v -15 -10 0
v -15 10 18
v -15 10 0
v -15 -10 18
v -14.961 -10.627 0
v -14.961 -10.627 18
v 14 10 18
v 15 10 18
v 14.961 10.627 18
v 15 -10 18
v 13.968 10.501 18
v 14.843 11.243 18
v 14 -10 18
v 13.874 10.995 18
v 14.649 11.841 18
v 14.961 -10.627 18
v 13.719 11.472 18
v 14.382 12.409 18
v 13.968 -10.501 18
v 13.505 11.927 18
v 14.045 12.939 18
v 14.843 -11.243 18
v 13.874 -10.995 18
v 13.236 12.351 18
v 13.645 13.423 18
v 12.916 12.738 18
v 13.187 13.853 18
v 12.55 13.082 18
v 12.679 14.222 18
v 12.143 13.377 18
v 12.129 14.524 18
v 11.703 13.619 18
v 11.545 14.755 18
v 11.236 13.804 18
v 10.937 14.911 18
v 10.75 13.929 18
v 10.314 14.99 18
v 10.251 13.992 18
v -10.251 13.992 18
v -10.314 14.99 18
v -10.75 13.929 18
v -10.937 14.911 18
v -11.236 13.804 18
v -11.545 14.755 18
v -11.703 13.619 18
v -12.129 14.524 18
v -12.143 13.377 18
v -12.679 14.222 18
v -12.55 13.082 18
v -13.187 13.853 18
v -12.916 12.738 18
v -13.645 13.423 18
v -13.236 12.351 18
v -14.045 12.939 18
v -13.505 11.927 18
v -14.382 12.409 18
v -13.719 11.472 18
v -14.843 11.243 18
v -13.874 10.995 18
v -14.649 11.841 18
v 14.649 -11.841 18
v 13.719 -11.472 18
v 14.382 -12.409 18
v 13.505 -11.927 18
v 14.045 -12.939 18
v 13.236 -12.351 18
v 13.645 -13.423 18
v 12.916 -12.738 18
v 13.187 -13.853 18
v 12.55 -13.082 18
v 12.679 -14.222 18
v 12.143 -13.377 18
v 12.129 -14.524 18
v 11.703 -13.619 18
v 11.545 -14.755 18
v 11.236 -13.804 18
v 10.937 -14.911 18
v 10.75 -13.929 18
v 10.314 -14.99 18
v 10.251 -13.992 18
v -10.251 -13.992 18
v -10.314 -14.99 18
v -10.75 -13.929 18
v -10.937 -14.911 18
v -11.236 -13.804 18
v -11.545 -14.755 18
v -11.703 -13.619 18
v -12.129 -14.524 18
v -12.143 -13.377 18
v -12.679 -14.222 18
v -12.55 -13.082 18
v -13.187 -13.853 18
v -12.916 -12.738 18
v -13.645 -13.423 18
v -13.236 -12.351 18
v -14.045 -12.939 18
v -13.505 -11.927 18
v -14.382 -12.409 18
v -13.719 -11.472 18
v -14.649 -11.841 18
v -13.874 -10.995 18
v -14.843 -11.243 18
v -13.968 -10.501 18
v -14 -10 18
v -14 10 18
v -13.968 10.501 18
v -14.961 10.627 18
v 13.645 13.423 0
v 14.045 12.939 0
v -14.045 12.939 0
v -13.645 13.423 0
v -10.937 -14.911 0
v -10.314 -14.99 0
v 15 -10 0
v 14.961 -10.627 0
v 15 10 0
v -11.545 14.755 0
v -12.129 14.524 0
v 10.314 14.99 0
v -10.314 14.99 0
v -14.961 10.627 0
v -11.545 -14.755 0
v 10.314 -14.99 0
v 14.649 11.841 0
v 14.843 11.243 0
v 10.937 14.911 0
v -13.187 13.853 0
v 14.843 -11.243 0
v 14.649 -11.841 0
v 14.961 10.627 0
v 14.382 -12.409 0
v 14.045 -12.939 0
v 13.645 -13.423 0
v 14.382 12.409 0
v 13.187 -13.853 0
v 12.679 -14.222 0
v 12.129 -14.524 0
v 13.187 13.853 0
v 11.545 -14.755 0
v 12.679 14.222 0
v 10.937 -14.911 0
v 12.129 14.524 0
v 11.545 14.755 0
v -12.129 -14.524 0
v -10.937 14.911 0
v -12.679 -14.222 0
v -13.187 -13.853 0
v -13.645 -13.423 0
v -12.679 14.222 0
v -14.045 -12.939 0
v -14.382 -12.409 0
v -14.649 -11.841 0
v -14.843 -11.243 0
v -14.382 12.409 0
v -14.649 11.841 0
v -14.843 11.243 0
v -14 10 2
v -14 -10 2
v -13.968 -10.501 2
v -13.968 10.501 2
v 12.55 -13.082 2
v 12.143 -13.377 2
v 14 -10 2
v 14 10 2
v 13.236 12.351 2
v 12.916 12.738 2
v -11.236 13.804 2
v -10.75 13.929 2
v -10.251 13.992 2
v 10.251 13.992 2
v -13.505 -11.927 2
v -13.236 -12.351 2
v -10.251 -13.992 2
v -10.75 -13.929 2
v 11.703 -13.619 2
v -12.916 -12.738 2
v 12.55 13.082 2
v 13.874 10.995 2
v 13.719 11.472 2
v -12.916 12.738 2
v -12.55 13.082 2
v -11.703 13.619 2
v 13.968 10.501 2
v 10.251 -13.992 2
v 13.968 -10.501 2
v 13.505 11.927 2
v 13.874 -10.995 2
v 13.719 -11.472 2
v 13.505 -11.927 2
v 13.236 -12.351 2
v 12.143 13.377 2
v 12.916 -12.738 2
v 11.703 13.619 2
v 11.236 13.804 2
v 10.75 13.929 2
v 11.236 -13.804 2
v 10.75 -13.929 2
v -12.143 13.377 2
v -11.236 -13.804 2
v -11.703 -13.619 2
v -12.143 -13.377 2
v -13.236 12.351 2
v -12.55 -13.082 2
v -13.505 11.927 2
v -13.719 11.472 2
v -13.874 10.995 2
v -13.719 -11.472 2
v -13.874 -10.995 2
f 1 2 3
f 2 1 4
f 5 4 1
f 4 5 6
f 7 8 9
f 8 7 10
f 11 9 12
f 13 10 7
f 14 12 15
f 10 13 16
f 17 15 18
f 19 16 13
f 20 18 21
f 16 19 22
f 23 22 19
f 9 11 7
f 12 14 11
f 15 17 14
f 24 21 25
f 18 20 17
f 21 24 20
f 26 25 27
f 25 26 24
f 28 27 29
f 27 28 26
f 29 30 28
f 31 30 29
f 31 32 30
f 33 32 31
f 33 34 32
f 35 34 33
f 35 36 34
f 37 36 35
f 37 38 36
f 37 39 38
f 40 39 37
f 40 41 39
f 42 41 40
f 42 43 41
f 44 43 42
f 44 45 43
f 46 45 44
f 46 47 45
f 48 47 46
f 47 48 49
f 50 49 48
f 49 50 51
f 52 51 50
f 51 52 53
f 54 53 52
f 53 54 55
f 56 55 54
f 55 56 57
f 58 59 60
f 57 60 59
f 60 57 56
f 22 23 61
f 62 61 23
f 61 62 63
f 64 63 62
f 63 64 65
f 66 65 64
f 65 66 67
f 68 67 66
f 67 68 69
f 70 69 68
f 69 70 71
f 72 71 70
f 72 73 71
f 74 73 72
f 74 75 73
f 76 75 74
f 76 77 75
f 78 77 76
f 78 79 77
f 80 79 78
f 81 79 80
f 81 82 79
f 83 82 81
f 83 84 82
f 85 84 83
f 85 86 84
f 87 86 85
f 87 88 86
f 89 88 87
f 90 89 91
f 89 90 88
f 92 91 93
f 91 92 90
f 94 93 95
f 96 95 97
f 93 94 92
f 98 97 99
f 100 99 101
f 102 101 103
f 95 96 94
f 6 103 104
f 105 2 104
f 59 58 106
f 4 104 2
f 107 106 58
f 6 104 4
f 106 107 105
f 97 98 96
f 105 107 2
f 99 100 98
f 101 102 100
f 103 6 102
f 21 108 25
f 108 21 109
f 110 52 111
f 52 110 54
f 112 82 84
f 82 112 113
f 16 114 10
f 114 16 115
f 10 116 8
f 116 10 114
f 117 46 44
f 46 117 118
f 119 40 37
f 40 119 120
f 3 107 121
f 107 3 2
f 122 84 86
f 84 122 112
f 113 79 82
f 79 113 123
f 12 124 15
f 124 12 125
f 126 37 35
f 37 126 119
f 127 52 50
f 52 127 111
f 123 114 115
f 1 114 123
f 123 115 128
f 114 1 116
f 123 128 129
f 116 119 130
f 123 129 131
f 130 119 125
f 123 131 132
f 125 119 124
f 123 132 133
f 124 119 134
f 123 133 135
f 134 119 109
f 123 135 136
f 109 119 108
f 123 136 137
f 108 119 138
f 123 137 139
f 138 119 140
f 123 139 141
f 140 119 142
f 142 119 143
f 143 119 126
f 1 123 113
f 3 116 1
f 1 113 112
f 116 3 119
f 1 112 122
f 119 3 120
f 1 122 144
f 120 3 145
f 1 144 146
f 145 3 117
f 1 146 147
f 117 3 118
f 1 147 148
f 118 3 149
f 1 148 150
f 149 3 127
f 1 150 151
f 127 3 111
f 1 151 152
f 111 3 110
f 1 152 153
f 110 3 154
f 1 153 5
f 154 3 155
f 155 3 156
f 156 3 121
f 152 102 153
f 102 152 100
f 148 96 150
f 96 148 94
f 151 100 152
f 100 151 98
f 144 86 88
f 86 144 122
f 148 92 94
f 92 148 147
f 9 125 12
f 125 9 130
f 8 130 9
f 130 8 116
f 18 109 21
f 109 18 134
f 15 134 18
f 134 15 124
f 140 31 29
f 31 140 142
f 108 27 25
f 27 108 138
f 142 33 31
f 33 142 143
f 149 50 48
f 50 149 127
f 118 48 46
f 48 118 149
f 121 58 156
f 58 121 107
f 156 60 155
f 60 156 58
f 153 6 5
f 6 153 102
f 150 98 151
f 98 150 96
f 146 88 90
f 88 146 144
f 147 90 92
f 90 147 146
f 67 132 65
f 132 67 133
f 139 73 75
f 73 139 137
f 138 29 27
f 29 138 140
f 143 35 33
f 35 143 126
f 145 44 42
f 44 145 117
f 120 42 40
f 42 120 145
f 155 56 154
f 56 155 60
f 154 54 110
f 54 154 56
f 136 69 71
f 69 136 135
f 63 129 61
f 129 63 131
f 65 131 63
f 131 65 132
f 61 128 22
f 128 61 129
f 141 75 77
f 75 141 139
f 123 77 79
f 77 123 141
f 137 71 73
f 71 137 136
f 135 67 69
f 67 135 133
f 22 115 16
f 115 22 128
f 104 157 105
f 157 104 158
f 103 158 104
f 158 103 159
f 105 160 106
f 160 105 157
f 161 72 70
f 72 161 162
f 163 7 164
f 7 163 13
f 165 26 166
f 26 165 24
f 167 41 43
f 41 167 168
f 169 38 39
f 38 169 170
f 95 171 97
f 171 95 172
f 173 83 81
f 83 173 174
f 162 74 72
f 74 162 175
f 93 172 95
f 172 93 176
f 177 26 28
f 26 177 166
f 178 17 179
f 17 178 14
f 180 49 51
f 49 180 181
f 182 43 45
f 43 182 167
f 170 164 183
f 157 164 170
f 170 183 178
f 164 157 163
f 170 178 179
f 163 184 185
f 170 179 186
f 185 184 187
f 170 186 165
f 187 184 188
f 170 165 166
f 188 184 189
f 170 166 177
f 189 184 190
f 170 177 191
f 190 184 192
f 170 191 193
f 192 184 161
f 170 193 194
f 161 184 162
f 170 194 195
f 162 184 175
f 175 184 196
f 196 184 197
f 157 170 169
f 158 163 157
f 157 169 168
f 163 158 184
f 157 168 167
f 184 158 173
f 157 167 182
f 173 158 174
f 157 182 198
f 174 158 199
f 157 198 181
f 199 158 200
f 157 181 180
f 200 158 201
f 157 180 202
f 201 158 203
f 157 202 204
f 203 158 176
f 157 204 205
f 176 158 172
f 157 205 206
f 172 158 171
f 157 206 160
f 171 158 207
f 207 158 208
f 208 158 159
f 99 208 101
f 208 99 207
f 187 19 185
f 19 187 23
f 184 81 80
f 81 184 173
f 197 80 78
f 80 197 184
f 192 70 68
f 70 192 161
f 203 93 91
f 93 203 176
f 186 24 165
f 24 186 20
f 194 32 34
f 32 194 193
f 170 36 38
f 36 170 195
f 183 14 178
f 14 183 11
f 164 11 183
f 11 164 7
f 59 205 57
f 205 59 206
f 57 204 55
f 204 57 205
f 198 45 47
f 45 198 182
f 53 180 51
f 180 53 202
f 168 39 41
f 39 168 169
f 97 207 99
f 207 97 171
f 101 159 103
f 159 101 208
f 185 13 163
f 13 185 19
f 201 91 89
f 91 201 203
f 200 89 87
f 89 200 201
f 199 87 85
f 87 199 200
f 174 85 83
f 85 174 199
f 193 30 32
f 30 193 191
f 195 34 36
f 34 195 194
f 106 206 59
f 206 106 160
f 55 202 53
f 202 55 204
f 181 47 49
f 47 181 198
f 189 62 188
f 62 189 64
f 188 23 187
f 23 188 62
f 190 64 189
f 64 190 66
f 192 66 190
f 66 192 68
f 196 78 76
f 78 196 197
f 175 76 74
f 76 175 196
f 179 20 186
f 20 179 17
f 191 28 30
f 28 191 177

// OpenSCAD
$fn = 50;


difference() {
	union() {
		hull() {
			translate(v = [-10.0000000000, 10.0000000000, 0]) {
				cylinder(h = 18, r = 5);
			}
			translate(v = [10.0000000000, 10.0000000000, 0]) {
				cylinder(h = 18, r = 5);
			}
			translate(v = [-10.0000000000, -10.0000000000, 0]) {
				cylinder(h = 18, r = 5);
			}
			translate(v = [10.0000000000, -10.0000000000, 0]) {
				cylinder(h = 18, r = 5);
			}
		}
	}
	union() {
		translate(v = [0, 0, 2]) {
			#hull() {
				translate(v = [-10.0000000000, 10.0000000000, 0]) {
					cylinder(h = 16, r = 4);
				}
				translate(v = [10.0000000000, 10.0000000000, 0]) {
					cylinder(h = 16, r = 4);
				}
				translate(v = [-10.0000000000, -10.0000000000, 0]) {
					cylinder(h = 16, r = 4);
				}
				translate(v = [10.0000000000, -10.0000000000, 0]) {
					cylinder(h = 16, r = 4);
				}
			}
		}
	}
}
